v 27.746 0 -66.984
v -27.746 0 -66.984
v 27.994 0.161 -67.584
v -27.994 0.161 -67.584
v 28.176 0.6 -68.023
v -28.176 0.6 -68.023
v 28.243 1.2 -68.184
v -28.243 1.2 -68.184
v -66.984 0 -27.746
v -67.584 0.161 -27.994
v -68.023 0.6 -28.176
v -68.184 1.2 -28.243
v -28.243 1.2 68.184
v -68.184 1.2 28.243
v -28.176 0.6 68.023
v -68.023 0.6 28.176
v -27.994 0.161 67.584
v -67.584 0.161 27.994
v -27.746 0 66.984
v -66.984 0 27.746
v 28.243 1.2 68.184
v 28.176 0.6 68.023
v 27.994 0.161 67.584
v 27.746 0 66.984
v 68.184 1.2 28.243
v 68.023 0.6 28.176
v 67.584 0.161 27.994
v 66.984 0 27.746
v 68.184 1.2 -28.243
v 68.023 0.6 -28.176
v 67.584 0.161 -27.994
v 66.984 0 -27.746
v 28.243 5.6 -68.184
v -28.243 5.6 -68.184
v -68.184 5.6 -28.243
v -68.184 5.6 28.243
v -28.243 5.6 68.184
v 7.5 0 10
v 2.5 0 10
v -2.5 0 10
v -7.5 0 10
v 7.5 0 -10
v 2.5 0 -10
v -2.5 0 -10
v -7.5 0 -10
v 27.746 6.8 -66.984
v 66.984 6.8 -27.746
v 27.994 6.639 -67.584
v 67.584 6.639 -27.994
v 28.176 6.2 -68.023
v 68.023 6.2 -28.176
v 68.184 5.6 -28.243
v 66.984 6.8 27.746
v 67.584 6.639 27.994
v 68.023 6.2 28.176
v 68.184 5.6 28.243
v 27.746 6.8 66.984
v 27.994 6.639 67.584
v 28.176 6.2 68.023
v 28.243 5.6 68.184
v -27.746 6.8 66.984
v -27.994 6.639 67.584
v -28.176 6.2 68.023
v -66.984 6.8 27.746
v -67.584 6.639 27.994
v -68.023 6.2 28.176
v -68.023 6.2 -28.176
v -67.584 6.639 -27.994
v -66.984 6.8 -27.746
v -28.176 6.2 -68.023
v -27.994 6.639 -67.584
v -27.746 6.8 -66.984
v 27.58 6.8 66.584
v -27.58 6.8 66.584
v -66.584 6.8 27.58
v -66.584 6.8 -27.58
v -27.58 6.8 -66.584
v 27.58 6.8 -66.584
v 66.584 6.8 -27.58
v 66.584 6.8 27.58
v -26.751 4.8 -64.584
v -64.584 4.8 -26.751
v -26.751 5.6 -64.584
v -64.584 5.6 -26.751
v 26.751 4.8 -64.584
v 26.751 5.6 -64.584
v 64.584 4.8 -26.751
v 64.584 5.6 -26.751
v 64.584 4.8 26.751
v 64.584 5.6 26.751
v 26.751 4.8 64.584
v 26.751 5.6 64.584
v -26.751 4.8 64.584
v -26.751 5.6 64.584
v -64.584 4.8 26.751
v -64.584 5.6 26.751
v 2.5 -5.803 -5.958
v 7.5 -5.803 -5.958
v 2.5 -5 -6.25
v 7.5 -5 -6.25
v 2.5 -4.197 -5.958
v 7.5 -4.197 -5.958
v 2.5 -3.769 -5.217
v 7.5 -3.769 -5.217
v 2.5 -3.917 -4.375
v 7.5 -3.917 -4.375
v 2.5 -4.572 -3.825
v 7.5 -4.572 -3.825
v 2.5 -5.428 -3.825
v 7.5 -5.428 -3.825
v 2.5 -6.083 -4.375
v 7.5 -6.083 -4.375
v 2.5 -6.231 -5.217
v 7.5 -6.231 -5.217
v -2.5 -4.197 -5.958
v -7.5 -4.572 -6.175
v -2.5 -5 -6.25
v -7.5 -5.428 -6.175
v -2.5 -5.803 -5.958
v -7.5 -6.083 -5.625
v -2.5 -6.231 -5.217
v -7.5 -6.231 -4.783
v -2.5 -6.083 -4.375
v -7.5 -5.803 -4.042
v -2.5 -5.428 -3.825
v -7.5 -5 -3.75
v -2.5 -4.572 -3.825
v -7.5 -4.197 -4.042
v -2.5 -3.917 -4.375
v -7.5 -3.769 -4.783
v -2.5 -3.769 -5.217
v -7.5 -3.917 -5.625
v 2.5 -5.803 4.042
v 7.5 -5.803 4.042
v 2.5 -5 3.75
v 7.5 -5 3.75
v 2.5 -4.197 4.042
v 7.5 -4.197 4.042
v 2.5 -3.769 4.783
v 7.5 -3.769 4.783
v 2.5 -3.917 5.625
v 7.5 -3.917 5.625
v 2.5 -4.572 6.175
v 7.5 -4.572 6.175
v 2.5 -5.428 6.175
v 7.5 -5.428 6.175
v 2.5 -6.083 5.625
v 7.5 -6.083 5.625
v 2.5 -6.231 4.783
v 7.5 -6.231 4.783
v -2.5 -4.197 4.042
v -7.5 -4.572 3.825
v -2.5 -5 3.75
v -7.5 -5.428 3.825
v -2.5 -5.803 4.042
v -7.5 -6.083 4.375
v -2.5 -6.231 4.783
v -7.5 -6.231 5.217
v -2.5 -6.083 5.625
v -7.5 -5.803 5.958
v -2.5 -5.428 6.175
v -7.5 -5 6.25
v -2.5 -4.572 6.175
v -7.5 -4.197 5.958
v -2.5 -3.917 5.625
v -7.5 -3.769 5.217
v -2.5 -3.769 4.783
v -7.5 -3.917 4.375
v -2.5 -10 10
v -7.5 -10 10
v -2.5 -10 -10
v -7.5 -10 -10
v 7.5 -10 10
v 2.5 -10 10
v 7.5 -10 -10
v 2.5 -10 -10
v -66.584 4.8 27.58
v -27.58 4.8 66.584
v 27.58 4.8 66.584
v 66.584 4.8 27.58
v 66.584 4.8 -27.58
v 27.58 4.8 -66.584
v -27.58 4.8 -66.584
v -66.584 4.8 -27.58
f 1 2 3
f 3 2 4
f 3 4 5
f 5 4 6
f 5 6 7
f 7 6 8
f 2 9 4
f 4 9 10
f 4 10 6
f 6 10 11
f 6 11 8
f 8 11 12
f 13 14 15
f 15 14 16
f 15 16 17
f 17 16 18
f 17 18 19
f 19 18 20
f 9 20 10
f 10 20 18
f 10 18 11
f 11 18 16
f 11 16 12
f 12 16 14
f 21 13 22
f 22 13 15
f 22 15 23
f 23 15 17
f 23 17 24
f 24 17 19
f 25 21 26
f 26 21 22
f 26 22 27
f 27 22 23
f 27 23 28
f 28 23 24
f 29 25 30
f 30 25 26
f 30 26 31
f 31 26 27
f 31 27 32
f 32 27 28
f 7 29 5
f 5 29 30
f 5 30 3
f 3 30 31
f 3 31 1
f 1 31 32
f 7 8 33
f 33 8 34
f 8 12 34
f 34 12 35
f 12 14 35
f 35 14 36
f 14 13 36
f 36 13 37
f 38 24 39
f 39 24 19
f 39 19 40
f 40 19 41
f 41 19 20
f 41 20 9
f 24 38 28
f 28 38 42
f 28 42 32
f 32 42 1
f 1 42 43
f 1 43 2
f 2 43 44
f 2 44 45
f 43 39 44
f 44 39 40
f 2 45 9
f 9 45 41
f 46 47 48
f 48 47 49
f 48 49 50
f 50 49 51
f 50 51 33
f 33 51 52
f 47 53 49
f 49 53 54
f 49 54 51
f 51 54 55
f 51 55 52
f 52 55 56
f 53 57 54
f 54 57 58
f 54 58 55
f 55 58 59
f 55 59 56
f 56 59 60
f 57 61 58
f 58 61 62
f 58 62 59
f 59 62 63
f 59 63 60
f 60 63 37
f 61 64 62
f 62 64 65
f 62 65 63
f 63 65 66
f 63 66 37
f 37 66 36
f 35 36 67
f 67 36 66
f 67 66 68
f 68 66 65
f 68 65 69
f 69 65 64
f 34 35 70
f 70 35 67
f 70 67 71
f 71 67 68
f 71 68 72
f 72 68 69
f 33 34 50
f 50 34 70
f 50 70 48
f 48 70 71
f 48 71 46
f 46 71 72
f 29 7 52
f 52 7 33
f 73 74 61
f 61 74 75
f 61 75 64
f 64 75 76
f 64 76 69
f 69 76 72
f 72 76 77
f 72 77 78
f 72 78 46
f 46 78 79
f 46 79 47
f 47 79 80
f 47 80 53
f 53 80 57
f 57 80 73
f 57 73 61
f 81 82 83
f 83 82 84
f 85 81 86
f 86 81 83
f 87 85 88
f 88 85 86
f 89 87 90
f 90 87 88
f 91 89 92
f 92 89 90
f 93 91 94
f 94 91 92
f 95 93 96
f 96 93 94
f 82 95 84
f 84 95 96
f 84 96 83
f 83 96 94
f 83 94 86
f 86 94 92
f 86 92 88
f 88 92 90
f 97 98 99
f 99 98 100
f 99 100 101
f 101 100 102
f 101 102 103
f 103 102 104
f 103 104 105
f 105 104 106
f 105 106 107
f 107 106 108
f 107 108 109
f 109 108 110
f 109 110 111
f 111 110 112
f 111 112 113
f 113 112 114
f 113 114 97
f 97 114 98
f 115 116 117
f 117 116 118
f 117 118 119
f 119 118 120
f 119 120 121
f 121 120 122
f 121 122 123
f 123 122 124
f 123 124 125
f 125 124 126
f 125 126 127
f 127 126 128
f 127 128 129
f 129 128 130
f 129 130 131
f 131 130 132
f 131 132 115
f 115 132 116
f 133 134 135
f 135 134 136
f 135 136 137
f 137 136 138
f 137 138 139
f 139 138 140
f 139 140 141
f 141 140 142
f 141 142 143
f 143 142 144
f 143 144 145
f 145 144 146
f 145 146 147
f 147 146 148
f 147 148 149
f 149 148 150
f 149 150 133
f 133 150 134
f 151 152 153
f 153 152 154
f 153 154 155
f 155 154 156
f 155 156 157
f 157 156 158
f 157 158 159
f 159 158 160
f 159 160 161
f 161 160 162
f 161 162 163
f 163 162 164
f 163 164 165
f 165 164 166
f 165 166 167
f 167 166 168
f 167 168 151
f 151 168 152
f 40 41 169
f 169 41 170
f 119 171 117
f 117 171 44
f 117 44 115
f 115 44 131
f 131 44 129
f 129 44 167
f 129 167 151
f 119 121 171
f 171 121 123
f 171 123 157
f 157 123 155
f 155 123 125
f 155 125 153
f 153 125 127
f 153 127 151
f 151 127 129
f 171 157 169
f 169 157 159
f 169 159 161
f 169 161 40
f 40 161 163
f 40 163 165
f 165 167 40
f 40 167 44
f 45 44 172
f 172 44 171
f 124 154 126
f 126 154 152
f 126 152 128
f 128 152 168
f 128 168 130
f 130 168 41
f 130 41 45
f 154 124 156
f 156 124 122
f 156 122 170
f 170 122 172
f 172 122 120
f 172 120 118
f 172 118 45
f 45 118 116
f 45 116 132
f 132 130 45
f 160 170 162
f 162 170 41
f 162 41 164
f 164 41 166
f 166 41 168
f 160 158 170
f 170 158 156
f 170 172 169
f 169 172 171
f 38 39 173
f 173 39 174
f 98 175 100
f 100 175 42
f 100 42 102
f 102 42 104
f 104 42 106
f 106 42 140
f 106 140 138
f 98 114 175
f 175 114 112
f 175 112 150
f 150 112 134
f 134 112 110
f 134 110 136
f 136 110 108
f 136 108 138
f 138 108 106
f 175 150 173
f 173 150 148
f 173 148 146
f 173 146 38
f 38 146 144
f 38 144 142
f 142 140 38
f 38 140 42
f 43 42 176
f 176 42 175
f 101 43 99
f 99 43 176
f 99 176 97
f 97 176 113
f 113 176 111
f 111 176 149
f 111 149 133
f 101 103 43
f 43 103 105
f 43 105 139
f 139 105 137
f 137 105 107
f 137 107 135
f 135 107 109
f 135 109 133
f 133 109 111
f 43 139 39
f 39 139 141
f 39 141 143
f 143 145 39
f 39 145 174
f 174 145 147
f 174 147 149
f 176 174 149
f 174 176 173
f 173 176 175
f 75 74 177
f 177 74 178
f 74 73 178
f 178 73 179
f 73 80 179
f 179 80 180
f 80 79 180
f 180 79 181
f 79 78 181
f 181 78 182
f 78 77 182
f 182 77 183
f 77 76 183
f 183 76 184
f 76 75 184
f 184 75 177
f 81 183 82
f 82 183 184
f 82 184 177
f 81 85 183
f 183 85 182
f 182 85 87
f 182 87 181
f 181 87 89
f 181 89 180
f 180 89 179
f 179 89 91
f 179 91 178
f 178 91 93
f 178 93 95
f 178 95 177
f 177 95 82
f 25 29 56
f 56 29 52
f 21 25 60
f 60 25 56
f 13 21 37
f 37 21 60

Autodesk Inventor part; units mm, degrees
ref_plane "YZ Plane" through (0, 0, 0) normal (1, 0, 0) x (0, 1, 0)
ref_plane "XZ Plane" through (0, 0, 0) normal (0, 1, 0) x (-1, 0, 0)
ref_plane "XY Plane" through (0, 0, 0) normal (0, 0, 1) x (1, 0, 0)
sketch "스케치3" plane through (0, 0, 0) normal (0, 1, 0) x (-1, 0, 0)
  line L0 (68.1838, -28.2426) -> (28.2426, -68.1838)
  line L1 (28.2426, -68.1838) -> (-28.2426, -68.1838)
  line L2 (-28.2426, -68.1838) -> (-68.1838, -28.2426)
  line L3 (-68.1838, -28.2426) -> (-68.1838, 28.2426)
  line L4 (-68.1838, 28.2426) -> (-28.2426, 68.1838)
  line L5 (-28.2426, 68.1838) -> (28.2426, 68.1838)
  line L6 (28.2426, 68.1838) -> (68.1838, 28.2426)
  line L7 (68.1838, 28.2426) -> (68.1838, -28.2426)
  line L8 (27, -65.1838) -> (-27, -65.1838)
  line L9 (-27, -65.1838) -> (-65.1838, -27)
  line L10 (-65.1838, -27) -> (-65.1838, 27)
  line L11 (-65.1838, 27) -> (-27, 65.1838)
  line L12 (-27, 65.1838) -> (27, 65.1838)
  line L13 (27, 65.1838) -> (65.1838, 27)
  line L14 (65.1838, 27) -> (65.1838, -27)
  line L15 (65.1838, -27) -> (27, -65.1838)
  point P0 (0, 0)
  point P1 (0, 0)
  point P2 (0, 0)
  point P3 (0, 0)
  dimension "d66" = 54
  dimension "d67" = 3
extrude "돌출2" add sketch "스케치3" along normal blind 6.8 contours L0 L1 L2 L3 L4 L5 L6 L7 | L8 L9 L10 L11 L12 L13 L14 L15
sketch "스케치4" plane through (0, 6.8, 0) normal (0, 1, 0) x (1, 0, 0)
  line L0 (26.8343, -64.7838) -> (-26.8343, -64.7838)
  line L1 (-26.8343, -64.7838) -> (-64.7838, -26.8343)
  line L2 (-64.7838, -26.8343) -> (-64.7838, 26.8343)
  line L3 (-64.7838, 26.8343) -> (-26.8343, 64.7838)
  line L4 (-26.8343, 64.7838) -> (26.8343, 64.7838)
  line L5 (26.8343, 64.7838) -> (64.7838, 26.8343)
  line L6 (64.7838, 26.8343) -> (64.7838, -26.8343)
  line L7 (64.7838, -26.8343) -> (26.8343, -64.7838)
  line L8 (-27.5799, 66.5838) -> (27.5799, 66.5838)
  line L9 (27.5799, 66.5838) -> (66.5838, 27.5799)
  line L10 (66.5838, 27.5799) -> (66.5838, -27.5799)
  line L11 (66.5838, -27.5799) -> (27.5799, -66.5838)
  line L12 (27.5799, -66.5838) -> (-27.5799, -66.5838)
  line L13 (-27.5799, -66.5838) -> (-66.5838, -27.5799)
  line L14 (-66.5838, -27.5799) -> (-66.5838, 27.5799)
  line L15 (-66.5838, 27.5799) -> (-27.5799, 66.5838)
  line L16 (-26.7515, 64.5838) -> (26.7515, 64.5838)
  line L17 (26.7515, 64.5838) -> (64.5838, 26.7515)
  line L18 (64.5838, 26.7515) -> (64.5838, -26.7515)
  line L19 (64.5838, -26.7515) -> (26.7515, -64.5838)
  line L20 (26.7515, -64.5838) -> (-26.7515, -64.5838)
  line L21 (-26.7515, -64.5838) -> (-64.5838, -26.7515)
  line L22 (-64.5838, -26.7515) -> (-64.5838, 26.7515)
  line L23 (-64.5838, 26.7515) -> (-26.7515, 64.5838)
  line L24 (-68.1838, 28.2426) -> (-68.1838, -28.2426) projected
  point P0 (0, 0)
  point P1 (0, 0)
  point P2 (0, 0)
  point P3 (0, 0)
  dimension "d68" = 1.8
  dimension "d69" = 0.2
  dimension "d99" = 1.6
extrude "돌출3" cut sketch "스케치4" against normal blind 2 contours L0 L1 L2 L3 L4 L5 L6 L7 | L8 L9 L10 L11 L12 L13 L14 L15 | L16 L17 L18 L19 L20 L21 L22 L23
sketch "스케치9" plane through (0, 0, 0) normal (0, -1, 0) x (1, 0, 0)
  line L0 (7.5, 10) -> (2.5, 10)
  line L1 (2.5, 10) -> (2.5, -10)
  line L2 (2.5, -10) -> (7.5, -10)
  line L3 (7.5, -10) -> (7.5, 10)
  line L4 (7.5, 10) -> (2.5, -10) construction
  line L5 (2.5, 10) -> (7.5, -10) construction
  line L6 (-2.5, 10) -> (-7.5, 10)
  line L7 (-7.5, 10) -> (-7.5, -10)
  line L8 (-7.5, -10) -> (-2.5, -10)
  line L9 (-2.5, 10) -> (-7.5, -10) construction
  line L10 (-7.5, 10) -> (-2.5, -10) construction
  line L11 (-2.5, -10) -> (-2.5, 10)
  point P0 (0, 0)
  point P1 (5, 0)
  point P2 (-5, 0)
  dimension "d42" = 20
  dimension "d43" = 5
  dimension "d44" = 2.5
  dimension "d47" = 10
extrude "돌출8" add sketch "스케치9" along normal blind 10
sketch "스케치10" plane through (-7.5, 0, -10) normal (-1, 0, 0) x (0, 0, 1)
  circle A0 centre (15, -5) radius 1.25
  line L0 (19.9591, 0) -> (0.0886, 0)
  line L1 (38.2426, 0) -> (-18.2426, 0) projected
  circle A1 centre (5, -5) radius 1.25
  line L2 (20, 0) -> (20, -10) projected
  point P0 (10, 0)
  dimension "d54" = 2.5
  dimension "d57" = 10
  dimension "d62" = 5
  dimension "d63" = 5
extrude "돌출9" cut sketch "스케치10" against normal blind 20
sketch "스케치11" plane through (0, 4.8, 0) normal (0, 1, 0) x (1, 0, 0)
  line L0 (-26.7515, 64.5838) -> (26.7515, 64.5838)
  line L1 (26.7515, 64.5838) -> (64.5838, 26.7515)
  line L2 (64.5838, 26.7515) -> (64.5838, -26.7515)
  line L3 (64.5838, -26.7515) -> (26.7515, -64.5838)
  line L4 (26.7515, -64.5838) -> (-26.7515, -64.5838)
  line L5 (-26.7515, -64.5838) -> (-64.5838, -26.7515)
  line L6 (-64.5838, -26.7515) -> (-64.5838, 26.7515)
  line L7 (-64.5838, 26.7515) -> (-26.7515, 64.5838)
  line L8 (-27.5799, 66.5838) -> (27.5799, 66.5838) projected
  line L9 (-25.5088, 61.5838) -> (25.5088, 61.5838)
  line L10 (25.5088, 61.5838) -> (61.5838, 25.5088)
  line L11 (61.5838, 25.5088) -> (61.5838, -25.5088)
  line L12 (61.5838, -25.5088) -> (25.5088, -61.5838)
  line L13 (25.5088, -61.5838) -> (-25.5088, -61.5838)
  line L14 (-25.5088, -61.5838) -> (-61.5838, -25.5088)
  line L15 (-61.5838, -25.5088) -> (-61.5838, 25.5088)
  line L16 (-61.5838, 25.5088) -> (-25.5088, 61.5838)
  point P0 (0, 0)
  point P1 (0, 0)
  point P2 (0, 0)
  dimension "d70" = 2
  dimension "d71" = 3
extrude "돌출10" add sketch "스케치11" along normal blind 0.8 contours L0 L1 L2 L3 L4 L5 L6 L7 | L9 L10 L11 L12 L13 L14 L15 L16
fillet "모깎기1" radius 1.2 16 edges at (-48.2132, 6.8, 48.2132) (0, 6.8, 68.1838) (48.2132, 6.8, 48.2132) (68.1838, 6.8, 0) (48.2132, 6.8, -48.2132) (0, 6.8, -68.1838) (-48.2132, 6.8, -48.2132) (-68.1838, 6.8, 0) (-48.2132, 0, 48.2132) (0, 0, 68.1838) (48.2132, 0, 48.2132) (68.1838, 0, 0) (48.2132, 0, -48.2132) (0, 0, -68.1838) (-48.2132, 0, -48.2132) (-68.1838, 0, 0)
properties part number "OV-PAM_bottom_2"
